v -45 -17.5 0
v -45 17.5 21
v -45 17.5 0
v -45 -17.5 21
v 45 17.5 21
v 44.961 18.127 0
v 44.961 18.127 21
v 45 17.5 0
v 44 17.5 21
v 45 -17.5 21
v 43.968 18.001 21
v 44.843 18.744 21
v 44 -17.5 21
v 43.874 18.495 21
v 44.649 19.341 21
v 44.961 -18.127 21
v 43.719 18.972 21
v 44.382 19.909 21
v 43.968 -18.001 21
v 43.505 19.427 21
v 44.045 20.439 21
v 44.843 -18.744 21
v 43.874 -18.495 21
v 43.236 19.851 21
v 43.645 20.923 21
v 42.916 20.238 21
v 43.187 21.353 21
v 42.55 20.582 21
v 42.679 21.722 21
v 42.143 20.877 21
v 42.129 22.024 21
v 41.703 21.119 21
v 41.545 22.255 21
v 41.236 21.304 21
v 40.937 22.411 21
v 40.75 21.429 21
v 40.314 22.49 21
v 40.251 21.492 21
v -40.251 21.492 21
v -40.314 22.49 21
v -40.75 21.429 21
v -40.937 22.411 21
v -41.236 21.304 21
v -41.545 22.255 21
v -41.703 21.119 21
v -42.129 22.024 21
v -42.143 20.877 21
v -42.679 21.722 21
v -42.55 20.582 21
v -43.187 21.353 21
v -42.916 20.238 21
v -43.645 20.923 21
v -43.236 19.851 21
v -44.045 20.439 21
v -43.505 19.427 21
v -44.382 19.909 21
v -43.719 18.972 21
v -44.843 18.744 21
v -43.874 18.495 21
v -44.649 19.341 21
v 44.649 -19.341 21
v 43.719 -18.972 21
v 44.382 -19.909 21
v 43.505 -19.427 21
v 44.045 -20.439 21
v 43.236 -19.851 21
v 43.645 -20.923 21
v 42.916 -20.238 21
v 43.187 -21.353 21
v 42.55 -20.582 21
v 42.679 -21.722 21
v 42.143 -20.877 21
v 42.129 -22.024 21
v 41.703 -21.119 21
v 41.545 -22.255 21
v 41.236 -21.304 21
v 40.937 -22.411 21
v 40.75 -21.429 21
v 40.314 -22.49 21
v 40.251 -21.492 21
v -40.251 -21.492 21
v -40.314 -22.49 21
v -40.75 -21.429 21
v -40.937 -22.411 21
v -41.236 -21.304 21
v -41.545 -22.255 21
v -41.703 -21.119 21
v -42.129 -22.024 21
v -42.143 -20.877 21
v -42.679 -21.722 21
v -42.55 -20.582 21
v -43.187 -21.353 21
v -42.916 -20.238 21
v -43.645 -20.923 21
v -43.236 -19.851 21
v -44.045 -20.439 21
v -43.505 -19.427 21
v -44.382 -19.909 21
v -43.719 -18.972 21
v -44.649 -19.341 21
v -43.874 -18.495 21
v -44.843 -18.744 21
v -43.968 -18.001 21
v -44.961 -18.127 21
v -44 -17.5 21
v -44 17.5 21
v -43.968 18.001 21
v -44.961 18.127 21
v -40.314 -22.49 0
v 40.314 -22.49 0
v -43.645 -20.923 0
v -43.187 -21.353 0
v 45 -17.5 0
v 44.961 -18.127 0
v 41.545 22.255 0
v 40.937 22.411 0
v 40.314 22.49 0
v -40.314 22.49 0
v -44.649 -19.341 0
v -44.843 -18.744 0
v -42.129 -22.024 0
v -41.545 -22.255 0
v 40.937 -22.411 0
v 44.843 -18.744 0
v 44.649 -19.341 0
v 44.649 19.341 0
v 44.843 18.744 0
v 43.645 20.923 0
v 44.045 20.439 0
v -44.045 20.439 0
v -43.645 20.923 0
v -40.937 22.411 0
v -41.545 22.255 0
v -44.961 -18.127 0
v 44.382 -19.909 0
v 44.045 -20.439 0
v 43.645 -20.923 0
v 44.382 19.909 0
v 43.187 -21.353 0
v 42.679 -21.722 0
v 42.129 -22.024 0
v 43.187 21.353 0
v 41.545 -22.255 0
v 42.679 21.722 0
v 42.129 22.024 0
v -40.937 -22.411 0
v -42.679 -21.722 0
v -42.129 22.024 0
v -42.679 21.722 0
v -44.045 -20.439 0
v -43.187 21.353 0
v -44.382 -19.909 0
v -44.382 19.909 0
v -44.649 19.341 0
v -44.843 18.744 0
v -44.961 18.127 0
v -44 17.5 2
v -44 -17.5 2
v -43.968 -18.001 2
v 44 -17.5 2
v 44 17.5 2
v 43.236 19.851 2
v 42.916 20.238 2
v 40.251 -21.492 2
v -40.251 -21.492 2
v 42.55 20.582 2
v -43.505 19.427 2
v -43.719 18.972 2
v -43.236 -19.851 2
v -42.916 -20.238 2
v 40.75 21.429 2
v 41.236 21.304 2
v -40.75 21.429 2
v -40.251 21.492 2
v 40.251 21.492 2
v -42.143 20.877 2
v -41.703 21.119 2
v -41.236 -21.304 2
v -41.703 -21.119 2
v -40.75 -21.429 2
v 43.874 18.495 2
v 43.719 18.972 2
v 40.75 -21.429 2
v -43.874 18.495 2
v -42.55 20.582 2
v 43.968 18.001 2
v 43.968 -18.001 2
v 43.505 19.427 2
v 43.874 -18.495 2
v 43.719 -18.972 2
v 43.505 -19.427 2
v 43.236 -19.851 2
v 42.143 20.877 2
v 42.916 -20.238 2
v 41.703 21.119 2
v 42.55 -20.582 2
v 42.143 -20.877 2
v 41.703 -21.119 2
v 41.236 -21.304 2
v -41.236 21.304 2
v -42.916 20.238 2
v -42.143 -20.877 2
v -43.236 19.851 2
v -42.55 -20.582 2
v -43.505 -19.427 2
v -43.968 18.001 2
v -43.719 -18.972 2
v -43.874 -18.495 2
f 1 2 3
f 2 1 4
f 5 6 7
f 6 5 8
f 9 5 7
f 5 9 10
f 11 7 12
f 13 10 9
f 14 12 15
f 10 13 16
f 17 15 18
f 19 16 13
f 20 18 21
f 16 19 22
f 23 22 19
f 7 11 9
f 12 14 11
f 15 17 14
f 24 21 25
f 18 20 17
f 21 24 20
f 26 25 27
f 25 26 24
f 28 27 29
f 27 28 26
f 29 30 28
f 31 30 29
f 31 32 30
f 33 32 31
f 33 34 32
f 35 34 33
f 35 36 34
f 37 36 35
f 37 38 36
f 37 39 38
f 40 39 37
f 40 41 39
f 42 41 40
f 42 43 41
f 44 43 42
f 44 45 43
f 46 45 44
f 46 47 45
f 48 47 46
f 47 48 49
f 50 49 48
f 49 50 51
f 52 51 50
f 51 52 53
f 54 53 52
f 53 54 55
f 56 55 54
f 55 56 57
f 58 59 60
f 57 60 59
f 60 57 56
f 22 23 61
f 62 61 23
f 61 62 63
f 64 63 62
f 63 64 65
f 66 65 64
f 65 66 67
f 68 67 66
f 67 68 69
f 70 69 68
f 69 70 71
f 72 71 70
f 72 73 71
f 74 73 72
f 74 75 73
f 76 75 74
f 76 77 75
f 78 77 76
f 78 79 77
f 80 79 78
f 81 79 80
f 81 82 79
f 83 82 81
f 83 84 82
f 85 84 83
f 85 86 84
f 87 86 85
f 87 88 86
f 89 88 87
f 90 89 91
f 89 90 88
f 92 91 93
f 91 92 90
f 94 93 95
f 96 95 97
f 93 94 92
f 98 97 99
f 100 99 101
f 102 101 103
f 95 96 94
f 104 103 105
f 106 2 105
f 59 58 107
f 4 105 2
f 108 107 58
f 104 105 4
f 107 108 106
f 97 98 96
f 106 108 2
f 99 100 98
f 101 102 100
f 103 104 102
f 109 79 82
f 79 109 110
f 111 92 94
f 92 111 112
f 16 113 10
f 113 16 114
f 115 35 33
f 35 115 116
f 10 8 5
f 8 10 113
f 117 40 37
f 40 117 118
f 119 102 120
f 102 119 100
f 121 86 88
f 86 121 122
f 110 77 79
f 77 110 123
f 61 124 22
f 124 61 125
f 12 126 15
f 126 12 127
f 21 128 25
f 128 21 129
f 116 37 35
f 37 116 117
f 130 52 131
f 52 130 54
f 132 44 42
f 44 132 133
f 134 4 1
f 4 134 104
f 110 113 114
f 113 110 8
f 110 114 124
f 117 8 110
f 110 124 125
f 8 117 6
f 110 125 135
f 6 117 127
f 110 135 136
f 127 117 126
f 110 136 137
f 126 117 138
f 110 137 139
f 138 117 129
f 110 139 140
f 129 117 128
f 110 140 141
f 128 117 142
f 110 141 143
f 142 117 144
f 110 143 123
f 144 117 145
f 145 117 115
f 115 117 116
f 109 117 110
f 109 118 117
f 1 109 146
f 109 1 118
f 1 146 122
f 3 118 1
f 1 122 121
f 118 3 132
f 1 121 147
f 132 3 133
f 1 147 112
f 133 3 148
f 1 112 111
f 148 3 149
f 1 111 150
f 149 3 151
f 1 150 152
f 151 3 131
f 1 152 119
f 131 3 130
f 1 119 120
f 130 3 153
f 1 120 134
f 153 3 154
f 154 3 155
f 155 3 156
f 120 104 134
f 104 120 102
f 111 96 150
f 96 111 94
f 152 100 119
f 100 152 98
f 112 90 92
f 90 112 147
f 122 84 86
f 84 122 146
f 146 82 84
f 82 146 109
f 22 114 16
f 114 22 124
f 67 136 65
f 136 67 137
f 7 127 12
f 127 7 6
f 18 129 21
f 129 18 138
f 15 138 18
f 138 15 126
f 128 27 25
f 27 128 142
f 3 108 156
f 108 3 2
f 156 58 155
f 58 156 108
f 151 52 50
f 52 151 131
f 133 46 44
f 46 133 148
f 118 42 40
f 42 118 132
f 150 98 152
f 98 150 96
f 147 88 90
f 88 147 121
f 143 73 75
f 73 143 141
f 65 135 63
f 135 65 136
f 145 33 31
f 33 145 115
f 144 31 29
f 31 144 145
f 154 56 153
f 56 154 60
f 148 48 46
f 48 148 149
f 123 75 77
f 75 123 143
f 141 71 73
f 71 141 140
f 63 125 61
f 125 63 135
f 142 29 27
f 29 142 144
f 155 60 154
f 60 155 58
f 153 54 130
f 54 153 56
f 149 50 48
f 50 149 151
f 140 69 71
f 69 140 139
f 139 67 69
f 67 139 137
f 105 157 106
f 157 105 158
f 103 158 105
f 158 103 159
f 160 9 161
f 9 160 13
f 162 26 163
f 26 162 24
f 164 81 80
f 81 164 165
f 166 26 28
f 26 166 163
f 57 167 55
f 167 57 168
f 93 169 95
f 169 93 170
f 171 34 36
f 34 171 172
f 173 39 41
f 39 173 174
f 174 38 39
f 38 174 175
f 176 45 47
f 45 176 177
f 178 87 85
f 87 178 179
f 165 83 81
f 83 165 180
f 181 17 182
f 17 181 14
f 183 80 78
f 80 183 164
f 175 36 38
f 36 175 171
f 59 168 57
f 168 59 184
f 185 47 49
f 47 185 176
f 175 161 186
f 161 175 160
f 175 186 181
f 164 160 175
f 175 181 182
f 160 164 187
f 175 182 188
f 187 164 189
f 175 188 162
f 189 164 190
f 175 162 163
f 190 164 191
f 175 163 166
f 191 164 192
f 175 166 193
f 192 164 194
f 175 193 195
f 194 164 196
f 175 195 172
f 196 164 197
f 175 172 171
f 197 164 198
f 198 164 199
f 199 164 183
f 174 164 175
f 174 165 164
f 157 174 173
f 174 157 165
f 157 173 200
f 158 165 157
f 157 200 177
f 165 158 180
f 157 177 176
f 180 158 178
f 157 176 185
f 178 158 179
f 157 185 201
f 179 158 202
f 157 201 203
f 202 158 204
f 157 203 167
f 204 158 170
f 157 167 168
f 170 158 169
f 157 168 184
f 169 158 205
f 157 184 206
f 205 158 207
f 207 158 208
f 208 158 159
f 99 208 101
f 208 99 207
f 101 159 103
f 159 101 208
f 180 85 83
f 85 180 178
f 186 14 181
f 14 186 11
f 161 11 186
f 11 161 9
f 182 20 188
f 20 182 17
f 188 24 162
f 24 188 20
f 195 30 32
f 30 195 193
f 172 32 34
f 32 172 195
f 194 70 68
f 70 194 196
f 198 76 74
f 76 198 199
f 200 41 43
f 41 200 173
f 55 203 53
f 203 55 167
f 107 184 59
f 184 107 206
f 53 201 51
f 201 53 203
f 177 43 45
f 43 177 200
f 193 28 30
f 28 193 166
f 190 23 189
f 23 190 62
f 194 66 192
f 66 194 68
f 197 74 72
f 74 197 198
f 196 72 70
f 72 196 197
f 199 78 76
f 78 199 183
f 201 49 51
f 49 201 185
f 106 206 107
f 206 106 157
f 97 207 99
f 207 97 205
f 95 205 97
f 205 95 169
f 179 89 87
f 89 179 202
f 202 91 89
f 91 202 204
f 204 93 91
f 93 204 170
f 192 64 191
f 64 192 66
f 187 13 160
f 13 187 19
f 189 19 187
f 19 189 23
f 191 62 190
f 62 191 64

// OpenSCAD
$fn = 50;


difference() {
	union() {
		hull() {
			translate(v = [-40.0000000000, 17.5000000000, 0]) {
				cylinder(h = 21, r = 5);
			}
			translate(v = [40.0000000000, 17.5000000000, 0]) {
				cylinder(h = 21, r = 5);
			}
			translate(v = [-40.0000000000, -17.5000000000, 0]) {
				cylinder(h = 21, r = 5);
			}
			translate(v = [40.0000000000, -17.5000000000, 0]) {
				cylinder(h = 21, r = 5);
			}
		}
	}
	union() {
		translate(v = [0, 0, 2]) {
			hull() {
				translate(v = [-40.0000000000, 17.5000000000, 0]) {
					cylinder(h = 19, r = 4);
				}
				translate(v = [40.0000000000, 17.5000000000, 0]) {
					cylinder(h = 19, r = 4);
				}
				translate(v = [-40.0000000000, -17.5000000000, 0]) {
					cylinder(h = 19, r = 4);
				}
				translate(v = [40.0000000000, -17.5000000000, 0]) {
					cylinder(h = 19, r = 4);
				}
			}
		}
	}
}
